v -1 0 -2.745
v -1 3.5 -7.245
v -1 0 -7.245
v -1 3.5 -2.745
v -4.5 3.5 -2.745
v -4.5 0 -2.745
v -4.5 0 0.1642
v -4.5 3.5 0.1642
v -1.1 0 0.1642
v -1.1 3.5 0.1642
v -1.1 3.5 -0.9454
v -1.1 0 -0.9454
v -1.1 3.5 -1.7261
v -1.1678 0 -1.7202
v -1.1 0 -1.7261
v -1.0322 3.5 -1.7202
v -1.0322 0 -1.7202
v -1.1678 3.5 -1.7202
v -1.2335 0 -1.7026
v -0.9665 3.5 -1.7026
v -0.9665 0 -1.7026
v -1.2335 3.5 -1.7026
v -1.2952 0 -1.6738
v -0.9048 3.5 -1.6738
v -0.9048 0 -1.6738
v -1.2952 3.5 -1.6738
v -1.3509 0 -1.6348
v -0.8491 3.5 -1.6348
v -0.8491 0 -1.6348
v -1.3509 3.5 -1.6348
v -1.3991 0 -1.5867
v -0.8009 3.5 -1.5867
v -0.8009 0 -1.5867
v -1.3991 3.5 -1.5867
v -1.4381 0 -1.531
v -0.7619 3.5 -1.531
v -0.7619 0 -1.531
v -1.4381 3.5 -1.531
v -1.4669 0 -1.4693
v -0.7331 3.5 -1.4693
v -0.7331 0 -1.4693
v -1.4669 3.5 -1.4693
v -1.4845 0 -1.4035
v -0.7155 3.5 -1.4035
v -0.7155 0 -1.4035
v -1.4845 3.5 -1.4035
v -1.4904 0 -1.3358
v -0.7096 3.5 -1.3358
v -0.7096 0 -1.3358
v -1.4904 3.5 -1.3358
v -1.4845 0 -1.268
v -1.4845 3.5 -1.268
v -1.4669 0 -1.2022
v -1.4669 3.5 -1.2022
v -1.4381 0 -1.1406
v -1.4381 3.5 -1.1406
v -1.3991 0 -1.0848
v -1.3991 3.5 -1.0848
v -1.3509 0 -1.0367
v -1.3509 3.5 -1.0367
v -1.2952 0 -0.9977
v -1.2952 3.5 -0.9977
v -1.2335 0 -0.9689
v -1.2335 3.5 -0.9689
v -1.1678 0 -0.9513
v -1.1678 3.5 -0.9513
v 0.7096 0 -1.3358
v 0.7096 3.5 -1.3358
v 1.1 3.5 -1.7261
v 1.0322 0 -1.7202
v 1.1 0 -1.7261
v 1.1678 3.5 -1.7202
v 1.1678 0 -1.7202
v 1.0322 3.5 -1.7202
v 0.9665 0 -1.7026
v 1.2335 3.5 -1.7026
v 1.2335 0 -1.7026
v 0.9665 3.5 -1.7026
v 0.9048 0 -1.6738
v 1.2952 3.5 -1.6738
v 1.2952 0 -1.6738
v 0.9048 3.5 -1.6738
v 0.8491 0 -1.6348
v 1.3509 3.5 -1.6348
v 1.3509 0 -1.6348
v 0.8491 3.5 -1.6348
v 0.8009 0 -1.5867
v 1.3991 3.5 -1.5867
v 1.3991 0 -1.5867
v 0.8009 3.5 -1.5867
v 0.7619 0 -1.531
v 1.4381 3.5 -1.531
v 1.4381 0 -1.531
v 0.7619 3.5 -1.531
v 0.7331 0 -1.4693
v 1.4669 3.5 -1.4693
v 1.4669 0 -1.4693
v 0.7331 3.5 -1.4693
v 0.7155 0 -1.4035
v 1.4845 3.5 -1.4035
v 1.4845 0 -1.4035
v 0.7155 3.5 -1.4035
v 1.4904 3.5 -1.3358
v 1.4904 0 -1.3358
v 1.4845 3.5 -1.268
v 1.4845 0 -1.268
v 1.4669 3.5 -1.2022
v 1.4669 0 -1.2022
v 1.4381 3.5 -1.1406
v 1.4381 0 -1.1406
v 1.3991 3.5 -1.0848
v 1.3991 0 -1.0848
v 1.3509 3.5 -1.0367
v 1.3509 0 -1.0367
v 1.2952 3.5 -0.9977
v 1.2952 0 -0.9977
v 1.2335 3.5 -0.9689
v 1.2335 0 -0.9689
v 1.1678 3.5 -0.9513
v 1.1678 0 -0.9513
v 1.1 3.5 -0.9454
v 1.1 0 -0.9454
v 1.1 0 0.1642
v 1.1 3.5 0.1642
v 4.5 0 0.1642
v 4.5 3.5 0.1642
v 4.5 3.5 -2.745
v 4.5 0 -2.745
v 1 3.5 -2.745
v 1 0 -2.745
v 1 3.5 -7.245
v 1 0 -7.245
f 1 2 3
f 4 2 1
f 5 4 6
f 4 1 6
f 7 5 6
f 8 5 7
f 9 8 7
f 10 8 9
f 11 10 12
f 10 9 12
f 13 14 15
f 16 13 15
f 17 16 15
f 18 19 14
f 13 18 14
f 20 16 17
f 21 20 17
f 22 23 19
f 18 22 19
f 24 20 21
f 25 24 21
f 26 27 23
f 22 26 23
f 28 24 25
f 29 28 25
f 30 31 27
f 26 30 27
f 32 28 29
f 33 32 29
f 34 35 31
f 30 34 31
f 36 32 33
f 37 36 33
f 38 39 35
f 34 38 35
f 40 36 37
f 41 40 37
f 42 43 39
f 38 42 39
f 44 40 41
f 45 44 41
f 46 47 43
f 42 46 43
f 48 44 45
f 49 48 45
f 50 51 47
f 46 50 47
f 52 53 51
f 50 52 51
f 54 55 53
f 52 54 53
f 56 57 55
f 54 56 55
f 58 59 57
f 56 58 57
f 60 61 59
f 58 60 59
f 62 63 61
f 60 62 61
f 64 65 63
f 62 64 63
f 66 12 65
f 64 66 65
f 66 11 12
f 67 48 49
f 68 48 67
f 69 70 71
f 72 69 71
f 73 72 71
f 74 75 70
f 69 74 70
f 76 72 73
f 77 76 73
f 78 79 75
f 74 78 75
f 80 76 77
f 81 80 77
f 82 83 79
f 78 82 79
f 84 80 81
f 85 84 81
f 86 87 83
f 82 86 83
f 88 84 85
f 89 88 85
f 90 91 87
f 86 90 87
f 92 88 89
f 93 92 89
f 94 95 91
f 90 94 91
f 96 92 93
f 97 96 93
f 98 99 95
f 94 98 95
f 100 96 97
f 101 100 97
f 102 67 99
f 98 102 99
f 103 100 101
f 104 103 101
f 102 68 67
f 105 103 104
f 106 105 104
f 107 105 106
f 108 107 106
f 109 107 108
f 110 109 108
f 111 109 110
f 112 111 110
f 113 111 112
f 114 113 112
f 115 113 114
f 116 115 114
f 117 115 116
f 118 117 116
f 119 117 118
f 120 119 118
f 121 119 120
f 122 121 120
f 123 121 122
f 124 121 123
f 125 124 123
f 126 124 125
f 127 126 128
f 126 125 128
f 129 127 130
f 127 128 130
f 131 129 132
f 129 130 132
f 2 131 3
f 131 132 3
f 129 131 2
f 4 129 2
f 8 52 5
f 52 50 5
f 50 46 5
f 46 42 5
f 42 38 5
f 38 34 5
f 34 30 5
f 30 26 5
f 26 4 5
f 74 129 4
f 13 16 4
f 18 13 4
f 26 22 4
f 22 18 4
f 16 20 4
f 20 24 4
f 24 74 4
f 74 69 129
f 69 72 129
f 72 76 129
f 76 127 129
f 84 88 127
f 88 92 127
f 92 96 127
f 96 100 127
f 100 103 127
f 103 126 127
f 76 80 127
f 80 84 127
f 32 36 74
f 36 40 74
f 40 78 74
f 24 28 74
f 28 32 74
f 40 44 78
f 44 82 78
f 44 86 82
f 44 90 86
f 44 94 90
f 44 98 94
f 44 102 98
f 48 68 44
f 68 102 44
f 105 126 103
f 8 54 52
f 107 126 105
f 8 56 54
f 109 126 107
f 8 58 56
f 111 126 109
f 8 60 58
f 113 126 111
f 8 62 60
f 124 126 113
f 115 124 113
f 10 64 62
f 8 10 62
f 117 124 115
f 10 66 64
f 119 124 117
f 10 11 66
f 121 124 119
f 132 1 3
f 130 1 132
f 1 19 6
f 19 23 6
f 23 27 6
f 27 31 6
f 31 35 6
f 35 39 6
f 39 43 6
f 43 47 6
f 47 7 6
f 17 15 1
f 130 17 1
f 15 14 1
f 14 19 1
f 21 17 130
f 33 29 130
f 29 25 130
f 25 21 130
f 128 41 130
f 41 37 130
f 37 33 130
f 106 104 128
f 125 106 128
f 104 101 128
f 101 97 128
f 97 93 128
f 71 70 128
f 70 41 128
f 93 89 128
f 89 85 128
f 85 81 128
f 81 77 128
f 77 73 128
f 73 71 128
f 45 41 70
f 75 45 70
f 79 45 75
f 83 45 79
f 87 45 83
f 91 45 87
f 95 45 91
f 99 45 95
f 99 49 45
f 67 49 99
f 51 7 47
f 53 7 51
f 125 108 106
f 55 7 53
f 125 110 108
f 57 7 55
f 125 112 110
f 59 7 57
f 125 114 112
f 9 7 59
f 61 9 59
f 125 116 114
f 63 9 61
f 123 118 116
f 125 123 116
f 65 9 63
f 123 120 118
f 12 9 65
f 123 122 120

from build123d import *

# Parameters (mm, degrees)
BOSS_EXTRUDE1_DEPTH = 3.5


with BuildPart() as part:
    # Sketch1 → Boss-Extrude1 (new body)
    with BuildSketch(Plane(origin=(0, 0, 0), x_dir=(1, 0, 0), z_dir=(0, 1, 0))):
        with BuildLine():
            Line((-4.5, -0.16424544), (-1.1, -0.16424544))
            Line((-1.1, -0.16424544), (-1.1, 0.945359747))
            ThreePointArc((-1.1, 0.945359747), (-1.37605082, 1.61180538), (-0.709605187, 1.33575456))
            Line((-0.709605187, 1.33575456), (0.709605187, 1.33575456))
            ThreePointArc((0.709605187, 1.33575456), (1.37605082, 1.61180538), (1.1, 0.945359747))
            Line((1.1, 0.945359747), (1.1, -0.16424544))
            Line((1.1, -0.16424544), (4.5, -0.16424544))
            Line((4.5, -0.16424544), (4.5, 2.74500456))
            Line((4.5, 2.74500456), (1, 2.74500456))
            Line((1, 2.74500456), (1, 7.24500456))
            Line((1, 7.24500456), (-1, 7.24500456))
            Line((-1, 7.24500456), (-1, 2.74500456))
            Line((-1, 2.74500456), (-4.5, 2.74500456))
            Line((-4.5, 2.74500456), (-4.5, -0.16424544))
        make_face()
    extrude(amount=BOSS_EXTRUDE1_DEPTH)


solid = part.part
